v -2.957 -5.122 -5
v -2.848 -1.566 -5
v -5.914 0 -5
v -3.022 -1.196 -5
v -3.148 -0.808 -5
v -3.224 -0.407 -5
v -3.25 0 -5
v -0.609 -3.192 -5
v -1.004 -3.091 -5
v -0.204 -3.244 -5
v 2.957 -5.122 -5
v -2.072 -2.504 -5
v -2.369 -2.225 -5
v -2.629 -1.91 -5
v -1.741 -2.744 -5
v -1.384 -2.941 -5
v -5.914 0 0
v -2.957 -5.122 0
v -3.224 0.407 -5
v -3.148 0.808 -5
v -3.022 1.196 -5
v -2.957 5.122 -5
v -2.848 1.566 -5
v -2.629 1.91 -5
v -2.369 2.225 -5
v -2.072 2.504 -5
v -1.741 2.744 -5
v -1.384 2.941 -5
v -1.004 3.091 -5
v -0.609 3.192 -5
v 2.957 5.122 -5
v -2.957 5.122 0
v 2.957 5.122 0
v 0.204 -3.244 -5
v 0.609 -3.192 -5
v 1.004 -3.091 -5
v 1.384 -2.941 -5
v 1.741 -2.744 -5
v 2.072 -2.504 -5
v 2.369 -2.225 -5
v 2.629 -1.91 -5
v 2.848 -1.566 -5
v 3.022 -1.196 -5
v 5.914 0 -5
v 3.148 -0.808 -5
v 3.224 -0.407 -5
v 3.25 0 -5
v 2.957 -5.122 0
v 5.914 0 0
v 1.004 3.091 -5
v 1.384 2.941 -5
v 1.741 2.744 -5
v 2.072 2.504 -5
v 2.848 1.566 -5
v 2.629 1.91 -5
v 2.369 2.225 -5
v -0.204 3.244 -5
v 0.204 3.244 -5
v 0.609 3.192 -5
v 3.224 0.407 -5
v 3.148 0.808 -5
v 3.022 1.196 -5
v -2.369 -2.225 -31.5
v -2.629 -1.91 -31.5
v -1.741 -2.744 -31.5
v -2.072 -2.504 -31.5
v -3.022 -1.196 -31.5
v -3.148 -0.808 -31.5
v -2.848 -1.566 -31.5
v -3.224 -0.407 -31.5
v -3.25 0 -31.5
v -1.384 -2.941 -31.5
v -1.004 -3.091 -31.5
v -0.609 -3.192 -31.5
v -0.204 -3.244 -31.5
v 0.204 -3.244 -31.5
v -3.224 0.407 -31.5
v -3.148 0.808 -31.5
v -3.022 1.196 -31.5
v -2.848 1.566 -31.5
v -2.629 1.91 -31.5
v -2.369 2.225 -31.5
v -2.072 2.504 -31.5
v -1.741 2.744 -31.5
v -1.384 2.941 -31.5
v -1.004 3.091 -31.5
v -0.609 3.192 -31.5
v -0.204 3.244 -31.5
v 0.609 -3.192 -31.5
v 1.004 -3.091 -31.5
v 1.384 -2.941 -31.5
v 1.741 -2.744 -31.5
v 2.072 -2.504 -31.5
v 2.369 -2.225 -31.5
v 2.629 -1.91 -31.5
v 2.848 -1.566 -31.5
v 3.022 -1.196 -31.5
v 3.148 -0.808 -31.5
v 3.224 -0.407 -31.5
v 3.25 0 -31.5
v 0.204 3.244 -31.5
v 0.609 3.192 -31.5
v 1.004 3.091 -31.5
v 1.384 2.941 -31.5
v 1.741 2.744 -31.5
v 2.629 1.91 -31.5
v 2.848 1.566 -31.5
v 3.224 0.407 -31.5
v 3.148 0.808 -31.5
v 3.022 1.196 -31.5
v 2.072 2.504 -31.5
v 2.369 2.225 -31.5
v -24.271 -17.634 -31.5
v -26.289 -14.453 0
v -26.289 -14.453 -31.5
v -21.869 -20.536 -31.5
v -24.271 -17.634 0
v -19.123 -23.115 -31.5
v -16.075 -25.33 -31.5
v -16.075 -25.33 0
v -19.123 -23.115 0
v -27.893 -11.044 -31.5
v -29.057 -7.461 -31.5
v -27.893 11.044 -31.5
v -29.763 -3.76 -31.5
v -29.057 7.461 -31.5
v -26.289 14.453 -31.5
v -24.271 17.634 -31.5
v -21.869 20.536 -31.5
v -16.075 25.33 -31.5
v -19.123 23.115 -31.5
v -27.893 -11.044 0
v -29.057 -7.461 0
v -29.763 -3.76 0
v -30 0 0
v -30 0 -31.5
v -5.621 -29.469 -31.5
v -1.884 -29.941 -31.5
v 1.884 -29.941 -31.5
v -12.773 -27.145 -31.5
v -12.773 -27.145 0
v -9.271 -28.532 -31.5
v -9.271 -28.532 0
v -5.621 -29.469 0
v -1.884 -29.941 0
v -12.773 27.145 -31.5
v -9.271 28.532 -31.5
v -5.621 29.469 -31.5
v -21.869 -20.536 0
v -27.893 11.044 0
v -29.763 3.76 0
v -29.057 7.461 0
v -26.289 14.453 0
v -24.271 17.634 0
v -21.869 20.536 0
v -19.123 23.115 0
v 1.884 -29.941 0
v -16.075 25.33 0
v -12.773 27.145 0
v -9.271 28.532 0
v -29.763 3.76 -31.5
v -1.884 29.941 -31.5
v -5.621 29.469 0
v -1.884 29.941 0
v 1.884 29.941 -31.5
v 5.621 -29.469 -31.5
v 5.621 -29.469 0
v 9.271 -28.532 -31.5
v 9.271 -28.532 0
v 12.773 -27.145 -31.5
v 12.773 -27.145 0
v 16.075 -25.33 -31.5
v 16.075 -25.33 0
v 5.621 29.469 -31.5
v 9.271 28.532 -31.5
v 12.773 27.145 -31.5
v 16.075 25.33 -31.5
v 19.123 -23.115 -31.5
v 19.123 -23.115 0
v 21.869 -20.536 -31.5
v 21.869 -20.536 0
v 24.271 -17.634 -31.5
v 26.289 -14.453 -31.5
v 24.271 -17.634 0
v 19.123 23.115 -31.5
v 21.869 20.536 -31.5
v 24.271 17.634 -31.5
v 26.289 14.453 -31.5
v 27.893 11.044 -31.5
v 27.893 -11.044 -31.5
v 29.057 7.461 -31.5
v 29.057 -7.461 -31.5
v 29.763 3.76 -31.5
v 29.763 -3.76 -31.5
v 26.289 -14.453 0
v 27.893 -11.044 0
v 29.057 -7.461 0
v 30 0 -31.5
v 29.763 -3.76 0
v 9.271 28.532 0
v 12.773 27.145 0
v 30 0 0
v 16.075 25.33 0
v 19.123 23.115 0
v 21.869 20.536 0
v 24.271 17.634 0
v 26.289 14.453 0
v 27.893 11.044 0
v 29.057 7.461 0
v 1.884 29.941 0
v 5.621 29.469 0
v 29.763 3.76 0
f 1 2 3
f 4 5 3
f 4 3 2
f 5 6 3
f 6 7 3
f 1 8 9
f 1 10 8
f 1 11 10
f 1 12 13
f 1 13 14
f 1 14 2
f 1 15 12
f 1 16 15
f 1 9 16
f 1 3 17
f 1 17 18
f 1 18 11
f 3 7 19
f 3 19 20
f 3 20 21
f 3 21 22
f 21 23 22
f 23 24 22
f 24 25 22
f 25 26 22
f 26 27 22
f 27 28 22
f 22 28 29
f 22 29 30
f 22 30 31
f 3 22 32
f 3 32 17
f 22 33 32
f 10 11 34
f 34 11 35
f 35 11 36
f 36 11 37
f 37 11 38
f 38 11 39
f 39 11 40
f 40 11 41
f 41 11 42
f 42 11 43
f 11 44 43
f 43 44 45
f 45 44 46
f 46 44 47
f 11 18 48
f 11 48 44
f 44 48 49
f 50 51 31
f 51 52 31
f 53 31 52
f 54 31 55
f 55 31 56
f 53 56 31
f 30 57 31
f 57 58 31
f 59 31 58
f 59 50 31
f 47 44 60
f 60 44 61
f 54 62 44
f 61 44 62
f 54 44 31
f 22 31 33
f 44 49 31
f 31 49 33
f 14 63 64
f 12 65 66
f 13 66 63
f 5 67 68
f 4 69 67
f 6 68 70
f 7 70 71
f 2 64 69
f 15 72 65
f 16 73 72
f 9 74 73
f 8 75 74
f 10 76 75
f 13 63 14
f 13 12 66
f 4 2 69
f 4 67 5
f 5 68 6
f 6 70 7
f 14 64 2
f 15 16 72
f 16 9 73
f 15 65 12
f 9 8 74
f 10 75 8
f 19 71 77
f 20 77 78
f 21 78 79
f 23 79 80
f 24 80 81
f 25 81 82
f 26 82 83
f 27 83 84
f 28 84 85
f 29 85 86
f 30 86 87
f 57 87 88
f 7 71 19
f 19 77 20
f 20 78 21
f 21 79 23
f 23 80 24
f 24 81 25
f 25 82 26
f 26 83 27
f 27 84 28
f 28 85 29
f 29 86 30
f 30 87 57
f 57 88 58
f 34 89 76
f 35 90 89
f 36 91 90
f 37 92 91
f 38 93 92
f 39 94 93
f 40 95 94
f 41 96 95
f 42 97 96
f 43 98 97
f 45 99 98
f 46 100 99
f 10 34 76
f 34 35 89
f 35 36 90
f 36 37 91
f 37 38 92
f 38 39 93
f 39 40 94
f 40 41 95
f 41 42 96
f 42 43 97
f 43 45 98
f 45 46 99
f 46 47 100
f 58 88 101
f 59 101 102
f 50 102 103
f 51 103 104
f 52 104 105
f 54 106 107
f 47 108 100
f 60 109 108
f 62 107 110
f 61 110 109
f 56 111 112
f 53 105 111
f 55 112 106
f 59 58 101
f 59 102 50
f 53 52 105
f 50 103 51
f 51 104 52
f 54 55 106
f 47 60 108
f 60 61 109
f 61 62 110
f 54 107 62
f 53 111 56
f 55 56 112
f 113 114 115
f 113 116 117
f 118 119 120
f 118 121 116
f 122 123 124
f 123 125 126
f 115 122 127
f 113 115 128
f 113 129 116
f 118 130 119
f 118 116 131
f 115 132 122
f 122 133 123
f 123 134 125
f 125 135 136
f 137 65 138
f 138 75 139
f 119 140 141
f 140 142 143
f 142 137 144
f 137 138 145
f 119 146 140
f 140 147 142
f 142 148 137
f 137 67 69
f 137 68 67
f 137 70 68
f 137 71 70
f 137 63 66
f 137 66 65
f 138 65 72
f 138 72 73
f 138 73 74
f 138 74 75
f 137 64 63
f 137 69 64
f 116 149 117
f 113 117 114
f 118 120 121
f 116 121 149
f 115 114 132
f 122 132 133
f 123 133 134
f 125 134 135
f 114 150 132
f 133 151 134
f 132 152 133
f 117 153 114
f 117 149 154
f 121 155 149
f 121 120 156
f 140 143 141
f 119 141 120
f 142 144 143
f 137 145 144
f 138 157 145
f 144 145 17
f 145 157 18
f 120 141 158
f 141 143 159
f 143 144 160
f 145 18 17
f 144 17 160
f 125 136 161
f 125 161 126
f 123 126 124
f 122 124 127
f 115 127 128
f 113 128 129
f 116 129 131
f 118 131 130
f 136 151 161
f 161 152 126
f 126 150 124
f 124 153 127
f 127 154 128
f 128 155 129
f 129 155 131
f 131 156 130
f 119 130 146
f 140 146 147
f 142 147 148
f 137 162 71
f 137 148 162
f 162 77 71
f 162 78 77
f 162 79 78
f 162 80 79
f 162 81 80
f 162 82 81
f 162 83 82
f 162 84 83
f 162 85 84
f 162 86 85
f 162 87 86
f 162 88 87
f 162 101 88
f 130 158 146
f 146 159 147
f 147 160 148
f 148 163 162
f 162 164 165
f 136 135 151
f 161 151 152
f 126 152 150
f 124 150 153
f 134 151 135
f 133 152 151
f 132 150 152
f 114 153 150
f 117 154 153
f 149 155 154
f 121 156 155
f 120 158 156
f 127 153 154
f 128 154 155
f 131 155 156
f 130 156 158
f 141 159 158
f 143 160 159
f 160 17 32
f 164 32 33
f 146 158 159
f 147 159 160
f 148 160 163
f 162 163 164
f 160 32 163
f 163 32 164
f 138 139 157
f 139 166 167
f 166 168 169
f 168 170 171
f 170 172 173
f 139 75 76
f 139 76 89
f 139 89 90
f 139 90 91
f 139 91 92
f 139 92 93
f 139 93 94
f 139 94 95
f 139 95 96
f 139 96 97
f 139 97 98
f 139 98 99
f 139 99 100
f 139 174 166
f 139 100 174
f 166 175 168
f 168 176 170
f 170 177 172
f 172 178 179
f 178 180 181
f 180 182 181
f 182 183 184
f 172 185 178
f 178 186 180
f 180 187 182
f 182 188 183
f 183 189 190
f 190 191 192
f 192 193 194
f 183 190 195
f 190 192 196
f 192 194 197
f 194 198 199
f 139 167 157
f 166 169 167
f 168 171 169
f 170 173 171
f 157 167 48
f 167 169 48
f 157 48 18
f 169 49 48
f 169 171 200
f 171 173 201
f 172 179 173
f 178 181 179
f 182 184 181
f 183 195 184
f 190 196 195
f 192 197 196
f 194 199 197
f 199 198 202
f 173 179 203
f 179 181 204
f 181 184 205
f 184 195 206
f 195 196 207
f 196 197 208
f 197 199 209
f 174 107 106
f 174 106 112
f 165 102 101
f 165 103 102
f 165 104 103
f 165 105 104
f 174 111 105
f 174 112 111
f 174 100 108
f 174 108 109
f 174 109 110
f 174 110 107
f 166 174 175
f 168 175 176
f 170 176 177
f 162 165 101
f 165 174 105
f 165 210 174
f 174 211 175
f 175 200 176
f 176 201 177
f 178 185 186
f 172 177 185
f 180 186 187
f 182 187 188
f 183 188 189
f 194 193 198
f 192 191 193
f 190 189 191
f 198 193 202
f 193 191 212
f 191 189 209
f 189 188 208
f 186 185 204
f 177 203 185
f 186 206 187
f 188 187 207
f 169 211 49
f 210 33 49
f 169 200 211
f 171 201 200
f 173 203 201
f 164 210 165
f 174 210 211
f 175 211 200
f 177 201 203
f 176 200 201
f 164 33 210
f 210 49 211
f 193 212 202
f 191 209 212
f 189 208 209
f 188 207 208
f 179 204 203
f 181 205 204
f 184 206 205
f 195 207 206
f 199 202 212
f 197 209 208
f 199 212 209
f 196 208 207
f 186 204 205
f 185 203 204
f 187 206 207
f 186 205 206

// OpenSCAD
$fn = 50;


difference() {
	union() {
		translate(v = [0, 0, -31.5000000000]) {
			cylinder(h = 31.5000000000, r = 30.0000000000);
		}
	}
	union() {
		translate(v = [0, 0, 0]) {
			rotate(a = [0, 0, 0]) {
				difference() {
					union() {
						translate(v = [0, 0, -5]) {
							linear_extrude(height = 5) {
								polygon(points = [[5.9142500000, 0.0000000000], [2.9571250000, 5.1218907443], [-2.9571250000, 5.1218907443], [-5.9142500000, 0.0000000000], [-2.9571250000, -5.1218907443], [2.9571250000, -5.1218907443]]);
							}
						}
					}
					union();
				}
			}
		}
		#translate(v = [0, 0, -100.0000000000]) {
			cylinder(h = 200, r = 3.2500000000);
		}
	}
}
